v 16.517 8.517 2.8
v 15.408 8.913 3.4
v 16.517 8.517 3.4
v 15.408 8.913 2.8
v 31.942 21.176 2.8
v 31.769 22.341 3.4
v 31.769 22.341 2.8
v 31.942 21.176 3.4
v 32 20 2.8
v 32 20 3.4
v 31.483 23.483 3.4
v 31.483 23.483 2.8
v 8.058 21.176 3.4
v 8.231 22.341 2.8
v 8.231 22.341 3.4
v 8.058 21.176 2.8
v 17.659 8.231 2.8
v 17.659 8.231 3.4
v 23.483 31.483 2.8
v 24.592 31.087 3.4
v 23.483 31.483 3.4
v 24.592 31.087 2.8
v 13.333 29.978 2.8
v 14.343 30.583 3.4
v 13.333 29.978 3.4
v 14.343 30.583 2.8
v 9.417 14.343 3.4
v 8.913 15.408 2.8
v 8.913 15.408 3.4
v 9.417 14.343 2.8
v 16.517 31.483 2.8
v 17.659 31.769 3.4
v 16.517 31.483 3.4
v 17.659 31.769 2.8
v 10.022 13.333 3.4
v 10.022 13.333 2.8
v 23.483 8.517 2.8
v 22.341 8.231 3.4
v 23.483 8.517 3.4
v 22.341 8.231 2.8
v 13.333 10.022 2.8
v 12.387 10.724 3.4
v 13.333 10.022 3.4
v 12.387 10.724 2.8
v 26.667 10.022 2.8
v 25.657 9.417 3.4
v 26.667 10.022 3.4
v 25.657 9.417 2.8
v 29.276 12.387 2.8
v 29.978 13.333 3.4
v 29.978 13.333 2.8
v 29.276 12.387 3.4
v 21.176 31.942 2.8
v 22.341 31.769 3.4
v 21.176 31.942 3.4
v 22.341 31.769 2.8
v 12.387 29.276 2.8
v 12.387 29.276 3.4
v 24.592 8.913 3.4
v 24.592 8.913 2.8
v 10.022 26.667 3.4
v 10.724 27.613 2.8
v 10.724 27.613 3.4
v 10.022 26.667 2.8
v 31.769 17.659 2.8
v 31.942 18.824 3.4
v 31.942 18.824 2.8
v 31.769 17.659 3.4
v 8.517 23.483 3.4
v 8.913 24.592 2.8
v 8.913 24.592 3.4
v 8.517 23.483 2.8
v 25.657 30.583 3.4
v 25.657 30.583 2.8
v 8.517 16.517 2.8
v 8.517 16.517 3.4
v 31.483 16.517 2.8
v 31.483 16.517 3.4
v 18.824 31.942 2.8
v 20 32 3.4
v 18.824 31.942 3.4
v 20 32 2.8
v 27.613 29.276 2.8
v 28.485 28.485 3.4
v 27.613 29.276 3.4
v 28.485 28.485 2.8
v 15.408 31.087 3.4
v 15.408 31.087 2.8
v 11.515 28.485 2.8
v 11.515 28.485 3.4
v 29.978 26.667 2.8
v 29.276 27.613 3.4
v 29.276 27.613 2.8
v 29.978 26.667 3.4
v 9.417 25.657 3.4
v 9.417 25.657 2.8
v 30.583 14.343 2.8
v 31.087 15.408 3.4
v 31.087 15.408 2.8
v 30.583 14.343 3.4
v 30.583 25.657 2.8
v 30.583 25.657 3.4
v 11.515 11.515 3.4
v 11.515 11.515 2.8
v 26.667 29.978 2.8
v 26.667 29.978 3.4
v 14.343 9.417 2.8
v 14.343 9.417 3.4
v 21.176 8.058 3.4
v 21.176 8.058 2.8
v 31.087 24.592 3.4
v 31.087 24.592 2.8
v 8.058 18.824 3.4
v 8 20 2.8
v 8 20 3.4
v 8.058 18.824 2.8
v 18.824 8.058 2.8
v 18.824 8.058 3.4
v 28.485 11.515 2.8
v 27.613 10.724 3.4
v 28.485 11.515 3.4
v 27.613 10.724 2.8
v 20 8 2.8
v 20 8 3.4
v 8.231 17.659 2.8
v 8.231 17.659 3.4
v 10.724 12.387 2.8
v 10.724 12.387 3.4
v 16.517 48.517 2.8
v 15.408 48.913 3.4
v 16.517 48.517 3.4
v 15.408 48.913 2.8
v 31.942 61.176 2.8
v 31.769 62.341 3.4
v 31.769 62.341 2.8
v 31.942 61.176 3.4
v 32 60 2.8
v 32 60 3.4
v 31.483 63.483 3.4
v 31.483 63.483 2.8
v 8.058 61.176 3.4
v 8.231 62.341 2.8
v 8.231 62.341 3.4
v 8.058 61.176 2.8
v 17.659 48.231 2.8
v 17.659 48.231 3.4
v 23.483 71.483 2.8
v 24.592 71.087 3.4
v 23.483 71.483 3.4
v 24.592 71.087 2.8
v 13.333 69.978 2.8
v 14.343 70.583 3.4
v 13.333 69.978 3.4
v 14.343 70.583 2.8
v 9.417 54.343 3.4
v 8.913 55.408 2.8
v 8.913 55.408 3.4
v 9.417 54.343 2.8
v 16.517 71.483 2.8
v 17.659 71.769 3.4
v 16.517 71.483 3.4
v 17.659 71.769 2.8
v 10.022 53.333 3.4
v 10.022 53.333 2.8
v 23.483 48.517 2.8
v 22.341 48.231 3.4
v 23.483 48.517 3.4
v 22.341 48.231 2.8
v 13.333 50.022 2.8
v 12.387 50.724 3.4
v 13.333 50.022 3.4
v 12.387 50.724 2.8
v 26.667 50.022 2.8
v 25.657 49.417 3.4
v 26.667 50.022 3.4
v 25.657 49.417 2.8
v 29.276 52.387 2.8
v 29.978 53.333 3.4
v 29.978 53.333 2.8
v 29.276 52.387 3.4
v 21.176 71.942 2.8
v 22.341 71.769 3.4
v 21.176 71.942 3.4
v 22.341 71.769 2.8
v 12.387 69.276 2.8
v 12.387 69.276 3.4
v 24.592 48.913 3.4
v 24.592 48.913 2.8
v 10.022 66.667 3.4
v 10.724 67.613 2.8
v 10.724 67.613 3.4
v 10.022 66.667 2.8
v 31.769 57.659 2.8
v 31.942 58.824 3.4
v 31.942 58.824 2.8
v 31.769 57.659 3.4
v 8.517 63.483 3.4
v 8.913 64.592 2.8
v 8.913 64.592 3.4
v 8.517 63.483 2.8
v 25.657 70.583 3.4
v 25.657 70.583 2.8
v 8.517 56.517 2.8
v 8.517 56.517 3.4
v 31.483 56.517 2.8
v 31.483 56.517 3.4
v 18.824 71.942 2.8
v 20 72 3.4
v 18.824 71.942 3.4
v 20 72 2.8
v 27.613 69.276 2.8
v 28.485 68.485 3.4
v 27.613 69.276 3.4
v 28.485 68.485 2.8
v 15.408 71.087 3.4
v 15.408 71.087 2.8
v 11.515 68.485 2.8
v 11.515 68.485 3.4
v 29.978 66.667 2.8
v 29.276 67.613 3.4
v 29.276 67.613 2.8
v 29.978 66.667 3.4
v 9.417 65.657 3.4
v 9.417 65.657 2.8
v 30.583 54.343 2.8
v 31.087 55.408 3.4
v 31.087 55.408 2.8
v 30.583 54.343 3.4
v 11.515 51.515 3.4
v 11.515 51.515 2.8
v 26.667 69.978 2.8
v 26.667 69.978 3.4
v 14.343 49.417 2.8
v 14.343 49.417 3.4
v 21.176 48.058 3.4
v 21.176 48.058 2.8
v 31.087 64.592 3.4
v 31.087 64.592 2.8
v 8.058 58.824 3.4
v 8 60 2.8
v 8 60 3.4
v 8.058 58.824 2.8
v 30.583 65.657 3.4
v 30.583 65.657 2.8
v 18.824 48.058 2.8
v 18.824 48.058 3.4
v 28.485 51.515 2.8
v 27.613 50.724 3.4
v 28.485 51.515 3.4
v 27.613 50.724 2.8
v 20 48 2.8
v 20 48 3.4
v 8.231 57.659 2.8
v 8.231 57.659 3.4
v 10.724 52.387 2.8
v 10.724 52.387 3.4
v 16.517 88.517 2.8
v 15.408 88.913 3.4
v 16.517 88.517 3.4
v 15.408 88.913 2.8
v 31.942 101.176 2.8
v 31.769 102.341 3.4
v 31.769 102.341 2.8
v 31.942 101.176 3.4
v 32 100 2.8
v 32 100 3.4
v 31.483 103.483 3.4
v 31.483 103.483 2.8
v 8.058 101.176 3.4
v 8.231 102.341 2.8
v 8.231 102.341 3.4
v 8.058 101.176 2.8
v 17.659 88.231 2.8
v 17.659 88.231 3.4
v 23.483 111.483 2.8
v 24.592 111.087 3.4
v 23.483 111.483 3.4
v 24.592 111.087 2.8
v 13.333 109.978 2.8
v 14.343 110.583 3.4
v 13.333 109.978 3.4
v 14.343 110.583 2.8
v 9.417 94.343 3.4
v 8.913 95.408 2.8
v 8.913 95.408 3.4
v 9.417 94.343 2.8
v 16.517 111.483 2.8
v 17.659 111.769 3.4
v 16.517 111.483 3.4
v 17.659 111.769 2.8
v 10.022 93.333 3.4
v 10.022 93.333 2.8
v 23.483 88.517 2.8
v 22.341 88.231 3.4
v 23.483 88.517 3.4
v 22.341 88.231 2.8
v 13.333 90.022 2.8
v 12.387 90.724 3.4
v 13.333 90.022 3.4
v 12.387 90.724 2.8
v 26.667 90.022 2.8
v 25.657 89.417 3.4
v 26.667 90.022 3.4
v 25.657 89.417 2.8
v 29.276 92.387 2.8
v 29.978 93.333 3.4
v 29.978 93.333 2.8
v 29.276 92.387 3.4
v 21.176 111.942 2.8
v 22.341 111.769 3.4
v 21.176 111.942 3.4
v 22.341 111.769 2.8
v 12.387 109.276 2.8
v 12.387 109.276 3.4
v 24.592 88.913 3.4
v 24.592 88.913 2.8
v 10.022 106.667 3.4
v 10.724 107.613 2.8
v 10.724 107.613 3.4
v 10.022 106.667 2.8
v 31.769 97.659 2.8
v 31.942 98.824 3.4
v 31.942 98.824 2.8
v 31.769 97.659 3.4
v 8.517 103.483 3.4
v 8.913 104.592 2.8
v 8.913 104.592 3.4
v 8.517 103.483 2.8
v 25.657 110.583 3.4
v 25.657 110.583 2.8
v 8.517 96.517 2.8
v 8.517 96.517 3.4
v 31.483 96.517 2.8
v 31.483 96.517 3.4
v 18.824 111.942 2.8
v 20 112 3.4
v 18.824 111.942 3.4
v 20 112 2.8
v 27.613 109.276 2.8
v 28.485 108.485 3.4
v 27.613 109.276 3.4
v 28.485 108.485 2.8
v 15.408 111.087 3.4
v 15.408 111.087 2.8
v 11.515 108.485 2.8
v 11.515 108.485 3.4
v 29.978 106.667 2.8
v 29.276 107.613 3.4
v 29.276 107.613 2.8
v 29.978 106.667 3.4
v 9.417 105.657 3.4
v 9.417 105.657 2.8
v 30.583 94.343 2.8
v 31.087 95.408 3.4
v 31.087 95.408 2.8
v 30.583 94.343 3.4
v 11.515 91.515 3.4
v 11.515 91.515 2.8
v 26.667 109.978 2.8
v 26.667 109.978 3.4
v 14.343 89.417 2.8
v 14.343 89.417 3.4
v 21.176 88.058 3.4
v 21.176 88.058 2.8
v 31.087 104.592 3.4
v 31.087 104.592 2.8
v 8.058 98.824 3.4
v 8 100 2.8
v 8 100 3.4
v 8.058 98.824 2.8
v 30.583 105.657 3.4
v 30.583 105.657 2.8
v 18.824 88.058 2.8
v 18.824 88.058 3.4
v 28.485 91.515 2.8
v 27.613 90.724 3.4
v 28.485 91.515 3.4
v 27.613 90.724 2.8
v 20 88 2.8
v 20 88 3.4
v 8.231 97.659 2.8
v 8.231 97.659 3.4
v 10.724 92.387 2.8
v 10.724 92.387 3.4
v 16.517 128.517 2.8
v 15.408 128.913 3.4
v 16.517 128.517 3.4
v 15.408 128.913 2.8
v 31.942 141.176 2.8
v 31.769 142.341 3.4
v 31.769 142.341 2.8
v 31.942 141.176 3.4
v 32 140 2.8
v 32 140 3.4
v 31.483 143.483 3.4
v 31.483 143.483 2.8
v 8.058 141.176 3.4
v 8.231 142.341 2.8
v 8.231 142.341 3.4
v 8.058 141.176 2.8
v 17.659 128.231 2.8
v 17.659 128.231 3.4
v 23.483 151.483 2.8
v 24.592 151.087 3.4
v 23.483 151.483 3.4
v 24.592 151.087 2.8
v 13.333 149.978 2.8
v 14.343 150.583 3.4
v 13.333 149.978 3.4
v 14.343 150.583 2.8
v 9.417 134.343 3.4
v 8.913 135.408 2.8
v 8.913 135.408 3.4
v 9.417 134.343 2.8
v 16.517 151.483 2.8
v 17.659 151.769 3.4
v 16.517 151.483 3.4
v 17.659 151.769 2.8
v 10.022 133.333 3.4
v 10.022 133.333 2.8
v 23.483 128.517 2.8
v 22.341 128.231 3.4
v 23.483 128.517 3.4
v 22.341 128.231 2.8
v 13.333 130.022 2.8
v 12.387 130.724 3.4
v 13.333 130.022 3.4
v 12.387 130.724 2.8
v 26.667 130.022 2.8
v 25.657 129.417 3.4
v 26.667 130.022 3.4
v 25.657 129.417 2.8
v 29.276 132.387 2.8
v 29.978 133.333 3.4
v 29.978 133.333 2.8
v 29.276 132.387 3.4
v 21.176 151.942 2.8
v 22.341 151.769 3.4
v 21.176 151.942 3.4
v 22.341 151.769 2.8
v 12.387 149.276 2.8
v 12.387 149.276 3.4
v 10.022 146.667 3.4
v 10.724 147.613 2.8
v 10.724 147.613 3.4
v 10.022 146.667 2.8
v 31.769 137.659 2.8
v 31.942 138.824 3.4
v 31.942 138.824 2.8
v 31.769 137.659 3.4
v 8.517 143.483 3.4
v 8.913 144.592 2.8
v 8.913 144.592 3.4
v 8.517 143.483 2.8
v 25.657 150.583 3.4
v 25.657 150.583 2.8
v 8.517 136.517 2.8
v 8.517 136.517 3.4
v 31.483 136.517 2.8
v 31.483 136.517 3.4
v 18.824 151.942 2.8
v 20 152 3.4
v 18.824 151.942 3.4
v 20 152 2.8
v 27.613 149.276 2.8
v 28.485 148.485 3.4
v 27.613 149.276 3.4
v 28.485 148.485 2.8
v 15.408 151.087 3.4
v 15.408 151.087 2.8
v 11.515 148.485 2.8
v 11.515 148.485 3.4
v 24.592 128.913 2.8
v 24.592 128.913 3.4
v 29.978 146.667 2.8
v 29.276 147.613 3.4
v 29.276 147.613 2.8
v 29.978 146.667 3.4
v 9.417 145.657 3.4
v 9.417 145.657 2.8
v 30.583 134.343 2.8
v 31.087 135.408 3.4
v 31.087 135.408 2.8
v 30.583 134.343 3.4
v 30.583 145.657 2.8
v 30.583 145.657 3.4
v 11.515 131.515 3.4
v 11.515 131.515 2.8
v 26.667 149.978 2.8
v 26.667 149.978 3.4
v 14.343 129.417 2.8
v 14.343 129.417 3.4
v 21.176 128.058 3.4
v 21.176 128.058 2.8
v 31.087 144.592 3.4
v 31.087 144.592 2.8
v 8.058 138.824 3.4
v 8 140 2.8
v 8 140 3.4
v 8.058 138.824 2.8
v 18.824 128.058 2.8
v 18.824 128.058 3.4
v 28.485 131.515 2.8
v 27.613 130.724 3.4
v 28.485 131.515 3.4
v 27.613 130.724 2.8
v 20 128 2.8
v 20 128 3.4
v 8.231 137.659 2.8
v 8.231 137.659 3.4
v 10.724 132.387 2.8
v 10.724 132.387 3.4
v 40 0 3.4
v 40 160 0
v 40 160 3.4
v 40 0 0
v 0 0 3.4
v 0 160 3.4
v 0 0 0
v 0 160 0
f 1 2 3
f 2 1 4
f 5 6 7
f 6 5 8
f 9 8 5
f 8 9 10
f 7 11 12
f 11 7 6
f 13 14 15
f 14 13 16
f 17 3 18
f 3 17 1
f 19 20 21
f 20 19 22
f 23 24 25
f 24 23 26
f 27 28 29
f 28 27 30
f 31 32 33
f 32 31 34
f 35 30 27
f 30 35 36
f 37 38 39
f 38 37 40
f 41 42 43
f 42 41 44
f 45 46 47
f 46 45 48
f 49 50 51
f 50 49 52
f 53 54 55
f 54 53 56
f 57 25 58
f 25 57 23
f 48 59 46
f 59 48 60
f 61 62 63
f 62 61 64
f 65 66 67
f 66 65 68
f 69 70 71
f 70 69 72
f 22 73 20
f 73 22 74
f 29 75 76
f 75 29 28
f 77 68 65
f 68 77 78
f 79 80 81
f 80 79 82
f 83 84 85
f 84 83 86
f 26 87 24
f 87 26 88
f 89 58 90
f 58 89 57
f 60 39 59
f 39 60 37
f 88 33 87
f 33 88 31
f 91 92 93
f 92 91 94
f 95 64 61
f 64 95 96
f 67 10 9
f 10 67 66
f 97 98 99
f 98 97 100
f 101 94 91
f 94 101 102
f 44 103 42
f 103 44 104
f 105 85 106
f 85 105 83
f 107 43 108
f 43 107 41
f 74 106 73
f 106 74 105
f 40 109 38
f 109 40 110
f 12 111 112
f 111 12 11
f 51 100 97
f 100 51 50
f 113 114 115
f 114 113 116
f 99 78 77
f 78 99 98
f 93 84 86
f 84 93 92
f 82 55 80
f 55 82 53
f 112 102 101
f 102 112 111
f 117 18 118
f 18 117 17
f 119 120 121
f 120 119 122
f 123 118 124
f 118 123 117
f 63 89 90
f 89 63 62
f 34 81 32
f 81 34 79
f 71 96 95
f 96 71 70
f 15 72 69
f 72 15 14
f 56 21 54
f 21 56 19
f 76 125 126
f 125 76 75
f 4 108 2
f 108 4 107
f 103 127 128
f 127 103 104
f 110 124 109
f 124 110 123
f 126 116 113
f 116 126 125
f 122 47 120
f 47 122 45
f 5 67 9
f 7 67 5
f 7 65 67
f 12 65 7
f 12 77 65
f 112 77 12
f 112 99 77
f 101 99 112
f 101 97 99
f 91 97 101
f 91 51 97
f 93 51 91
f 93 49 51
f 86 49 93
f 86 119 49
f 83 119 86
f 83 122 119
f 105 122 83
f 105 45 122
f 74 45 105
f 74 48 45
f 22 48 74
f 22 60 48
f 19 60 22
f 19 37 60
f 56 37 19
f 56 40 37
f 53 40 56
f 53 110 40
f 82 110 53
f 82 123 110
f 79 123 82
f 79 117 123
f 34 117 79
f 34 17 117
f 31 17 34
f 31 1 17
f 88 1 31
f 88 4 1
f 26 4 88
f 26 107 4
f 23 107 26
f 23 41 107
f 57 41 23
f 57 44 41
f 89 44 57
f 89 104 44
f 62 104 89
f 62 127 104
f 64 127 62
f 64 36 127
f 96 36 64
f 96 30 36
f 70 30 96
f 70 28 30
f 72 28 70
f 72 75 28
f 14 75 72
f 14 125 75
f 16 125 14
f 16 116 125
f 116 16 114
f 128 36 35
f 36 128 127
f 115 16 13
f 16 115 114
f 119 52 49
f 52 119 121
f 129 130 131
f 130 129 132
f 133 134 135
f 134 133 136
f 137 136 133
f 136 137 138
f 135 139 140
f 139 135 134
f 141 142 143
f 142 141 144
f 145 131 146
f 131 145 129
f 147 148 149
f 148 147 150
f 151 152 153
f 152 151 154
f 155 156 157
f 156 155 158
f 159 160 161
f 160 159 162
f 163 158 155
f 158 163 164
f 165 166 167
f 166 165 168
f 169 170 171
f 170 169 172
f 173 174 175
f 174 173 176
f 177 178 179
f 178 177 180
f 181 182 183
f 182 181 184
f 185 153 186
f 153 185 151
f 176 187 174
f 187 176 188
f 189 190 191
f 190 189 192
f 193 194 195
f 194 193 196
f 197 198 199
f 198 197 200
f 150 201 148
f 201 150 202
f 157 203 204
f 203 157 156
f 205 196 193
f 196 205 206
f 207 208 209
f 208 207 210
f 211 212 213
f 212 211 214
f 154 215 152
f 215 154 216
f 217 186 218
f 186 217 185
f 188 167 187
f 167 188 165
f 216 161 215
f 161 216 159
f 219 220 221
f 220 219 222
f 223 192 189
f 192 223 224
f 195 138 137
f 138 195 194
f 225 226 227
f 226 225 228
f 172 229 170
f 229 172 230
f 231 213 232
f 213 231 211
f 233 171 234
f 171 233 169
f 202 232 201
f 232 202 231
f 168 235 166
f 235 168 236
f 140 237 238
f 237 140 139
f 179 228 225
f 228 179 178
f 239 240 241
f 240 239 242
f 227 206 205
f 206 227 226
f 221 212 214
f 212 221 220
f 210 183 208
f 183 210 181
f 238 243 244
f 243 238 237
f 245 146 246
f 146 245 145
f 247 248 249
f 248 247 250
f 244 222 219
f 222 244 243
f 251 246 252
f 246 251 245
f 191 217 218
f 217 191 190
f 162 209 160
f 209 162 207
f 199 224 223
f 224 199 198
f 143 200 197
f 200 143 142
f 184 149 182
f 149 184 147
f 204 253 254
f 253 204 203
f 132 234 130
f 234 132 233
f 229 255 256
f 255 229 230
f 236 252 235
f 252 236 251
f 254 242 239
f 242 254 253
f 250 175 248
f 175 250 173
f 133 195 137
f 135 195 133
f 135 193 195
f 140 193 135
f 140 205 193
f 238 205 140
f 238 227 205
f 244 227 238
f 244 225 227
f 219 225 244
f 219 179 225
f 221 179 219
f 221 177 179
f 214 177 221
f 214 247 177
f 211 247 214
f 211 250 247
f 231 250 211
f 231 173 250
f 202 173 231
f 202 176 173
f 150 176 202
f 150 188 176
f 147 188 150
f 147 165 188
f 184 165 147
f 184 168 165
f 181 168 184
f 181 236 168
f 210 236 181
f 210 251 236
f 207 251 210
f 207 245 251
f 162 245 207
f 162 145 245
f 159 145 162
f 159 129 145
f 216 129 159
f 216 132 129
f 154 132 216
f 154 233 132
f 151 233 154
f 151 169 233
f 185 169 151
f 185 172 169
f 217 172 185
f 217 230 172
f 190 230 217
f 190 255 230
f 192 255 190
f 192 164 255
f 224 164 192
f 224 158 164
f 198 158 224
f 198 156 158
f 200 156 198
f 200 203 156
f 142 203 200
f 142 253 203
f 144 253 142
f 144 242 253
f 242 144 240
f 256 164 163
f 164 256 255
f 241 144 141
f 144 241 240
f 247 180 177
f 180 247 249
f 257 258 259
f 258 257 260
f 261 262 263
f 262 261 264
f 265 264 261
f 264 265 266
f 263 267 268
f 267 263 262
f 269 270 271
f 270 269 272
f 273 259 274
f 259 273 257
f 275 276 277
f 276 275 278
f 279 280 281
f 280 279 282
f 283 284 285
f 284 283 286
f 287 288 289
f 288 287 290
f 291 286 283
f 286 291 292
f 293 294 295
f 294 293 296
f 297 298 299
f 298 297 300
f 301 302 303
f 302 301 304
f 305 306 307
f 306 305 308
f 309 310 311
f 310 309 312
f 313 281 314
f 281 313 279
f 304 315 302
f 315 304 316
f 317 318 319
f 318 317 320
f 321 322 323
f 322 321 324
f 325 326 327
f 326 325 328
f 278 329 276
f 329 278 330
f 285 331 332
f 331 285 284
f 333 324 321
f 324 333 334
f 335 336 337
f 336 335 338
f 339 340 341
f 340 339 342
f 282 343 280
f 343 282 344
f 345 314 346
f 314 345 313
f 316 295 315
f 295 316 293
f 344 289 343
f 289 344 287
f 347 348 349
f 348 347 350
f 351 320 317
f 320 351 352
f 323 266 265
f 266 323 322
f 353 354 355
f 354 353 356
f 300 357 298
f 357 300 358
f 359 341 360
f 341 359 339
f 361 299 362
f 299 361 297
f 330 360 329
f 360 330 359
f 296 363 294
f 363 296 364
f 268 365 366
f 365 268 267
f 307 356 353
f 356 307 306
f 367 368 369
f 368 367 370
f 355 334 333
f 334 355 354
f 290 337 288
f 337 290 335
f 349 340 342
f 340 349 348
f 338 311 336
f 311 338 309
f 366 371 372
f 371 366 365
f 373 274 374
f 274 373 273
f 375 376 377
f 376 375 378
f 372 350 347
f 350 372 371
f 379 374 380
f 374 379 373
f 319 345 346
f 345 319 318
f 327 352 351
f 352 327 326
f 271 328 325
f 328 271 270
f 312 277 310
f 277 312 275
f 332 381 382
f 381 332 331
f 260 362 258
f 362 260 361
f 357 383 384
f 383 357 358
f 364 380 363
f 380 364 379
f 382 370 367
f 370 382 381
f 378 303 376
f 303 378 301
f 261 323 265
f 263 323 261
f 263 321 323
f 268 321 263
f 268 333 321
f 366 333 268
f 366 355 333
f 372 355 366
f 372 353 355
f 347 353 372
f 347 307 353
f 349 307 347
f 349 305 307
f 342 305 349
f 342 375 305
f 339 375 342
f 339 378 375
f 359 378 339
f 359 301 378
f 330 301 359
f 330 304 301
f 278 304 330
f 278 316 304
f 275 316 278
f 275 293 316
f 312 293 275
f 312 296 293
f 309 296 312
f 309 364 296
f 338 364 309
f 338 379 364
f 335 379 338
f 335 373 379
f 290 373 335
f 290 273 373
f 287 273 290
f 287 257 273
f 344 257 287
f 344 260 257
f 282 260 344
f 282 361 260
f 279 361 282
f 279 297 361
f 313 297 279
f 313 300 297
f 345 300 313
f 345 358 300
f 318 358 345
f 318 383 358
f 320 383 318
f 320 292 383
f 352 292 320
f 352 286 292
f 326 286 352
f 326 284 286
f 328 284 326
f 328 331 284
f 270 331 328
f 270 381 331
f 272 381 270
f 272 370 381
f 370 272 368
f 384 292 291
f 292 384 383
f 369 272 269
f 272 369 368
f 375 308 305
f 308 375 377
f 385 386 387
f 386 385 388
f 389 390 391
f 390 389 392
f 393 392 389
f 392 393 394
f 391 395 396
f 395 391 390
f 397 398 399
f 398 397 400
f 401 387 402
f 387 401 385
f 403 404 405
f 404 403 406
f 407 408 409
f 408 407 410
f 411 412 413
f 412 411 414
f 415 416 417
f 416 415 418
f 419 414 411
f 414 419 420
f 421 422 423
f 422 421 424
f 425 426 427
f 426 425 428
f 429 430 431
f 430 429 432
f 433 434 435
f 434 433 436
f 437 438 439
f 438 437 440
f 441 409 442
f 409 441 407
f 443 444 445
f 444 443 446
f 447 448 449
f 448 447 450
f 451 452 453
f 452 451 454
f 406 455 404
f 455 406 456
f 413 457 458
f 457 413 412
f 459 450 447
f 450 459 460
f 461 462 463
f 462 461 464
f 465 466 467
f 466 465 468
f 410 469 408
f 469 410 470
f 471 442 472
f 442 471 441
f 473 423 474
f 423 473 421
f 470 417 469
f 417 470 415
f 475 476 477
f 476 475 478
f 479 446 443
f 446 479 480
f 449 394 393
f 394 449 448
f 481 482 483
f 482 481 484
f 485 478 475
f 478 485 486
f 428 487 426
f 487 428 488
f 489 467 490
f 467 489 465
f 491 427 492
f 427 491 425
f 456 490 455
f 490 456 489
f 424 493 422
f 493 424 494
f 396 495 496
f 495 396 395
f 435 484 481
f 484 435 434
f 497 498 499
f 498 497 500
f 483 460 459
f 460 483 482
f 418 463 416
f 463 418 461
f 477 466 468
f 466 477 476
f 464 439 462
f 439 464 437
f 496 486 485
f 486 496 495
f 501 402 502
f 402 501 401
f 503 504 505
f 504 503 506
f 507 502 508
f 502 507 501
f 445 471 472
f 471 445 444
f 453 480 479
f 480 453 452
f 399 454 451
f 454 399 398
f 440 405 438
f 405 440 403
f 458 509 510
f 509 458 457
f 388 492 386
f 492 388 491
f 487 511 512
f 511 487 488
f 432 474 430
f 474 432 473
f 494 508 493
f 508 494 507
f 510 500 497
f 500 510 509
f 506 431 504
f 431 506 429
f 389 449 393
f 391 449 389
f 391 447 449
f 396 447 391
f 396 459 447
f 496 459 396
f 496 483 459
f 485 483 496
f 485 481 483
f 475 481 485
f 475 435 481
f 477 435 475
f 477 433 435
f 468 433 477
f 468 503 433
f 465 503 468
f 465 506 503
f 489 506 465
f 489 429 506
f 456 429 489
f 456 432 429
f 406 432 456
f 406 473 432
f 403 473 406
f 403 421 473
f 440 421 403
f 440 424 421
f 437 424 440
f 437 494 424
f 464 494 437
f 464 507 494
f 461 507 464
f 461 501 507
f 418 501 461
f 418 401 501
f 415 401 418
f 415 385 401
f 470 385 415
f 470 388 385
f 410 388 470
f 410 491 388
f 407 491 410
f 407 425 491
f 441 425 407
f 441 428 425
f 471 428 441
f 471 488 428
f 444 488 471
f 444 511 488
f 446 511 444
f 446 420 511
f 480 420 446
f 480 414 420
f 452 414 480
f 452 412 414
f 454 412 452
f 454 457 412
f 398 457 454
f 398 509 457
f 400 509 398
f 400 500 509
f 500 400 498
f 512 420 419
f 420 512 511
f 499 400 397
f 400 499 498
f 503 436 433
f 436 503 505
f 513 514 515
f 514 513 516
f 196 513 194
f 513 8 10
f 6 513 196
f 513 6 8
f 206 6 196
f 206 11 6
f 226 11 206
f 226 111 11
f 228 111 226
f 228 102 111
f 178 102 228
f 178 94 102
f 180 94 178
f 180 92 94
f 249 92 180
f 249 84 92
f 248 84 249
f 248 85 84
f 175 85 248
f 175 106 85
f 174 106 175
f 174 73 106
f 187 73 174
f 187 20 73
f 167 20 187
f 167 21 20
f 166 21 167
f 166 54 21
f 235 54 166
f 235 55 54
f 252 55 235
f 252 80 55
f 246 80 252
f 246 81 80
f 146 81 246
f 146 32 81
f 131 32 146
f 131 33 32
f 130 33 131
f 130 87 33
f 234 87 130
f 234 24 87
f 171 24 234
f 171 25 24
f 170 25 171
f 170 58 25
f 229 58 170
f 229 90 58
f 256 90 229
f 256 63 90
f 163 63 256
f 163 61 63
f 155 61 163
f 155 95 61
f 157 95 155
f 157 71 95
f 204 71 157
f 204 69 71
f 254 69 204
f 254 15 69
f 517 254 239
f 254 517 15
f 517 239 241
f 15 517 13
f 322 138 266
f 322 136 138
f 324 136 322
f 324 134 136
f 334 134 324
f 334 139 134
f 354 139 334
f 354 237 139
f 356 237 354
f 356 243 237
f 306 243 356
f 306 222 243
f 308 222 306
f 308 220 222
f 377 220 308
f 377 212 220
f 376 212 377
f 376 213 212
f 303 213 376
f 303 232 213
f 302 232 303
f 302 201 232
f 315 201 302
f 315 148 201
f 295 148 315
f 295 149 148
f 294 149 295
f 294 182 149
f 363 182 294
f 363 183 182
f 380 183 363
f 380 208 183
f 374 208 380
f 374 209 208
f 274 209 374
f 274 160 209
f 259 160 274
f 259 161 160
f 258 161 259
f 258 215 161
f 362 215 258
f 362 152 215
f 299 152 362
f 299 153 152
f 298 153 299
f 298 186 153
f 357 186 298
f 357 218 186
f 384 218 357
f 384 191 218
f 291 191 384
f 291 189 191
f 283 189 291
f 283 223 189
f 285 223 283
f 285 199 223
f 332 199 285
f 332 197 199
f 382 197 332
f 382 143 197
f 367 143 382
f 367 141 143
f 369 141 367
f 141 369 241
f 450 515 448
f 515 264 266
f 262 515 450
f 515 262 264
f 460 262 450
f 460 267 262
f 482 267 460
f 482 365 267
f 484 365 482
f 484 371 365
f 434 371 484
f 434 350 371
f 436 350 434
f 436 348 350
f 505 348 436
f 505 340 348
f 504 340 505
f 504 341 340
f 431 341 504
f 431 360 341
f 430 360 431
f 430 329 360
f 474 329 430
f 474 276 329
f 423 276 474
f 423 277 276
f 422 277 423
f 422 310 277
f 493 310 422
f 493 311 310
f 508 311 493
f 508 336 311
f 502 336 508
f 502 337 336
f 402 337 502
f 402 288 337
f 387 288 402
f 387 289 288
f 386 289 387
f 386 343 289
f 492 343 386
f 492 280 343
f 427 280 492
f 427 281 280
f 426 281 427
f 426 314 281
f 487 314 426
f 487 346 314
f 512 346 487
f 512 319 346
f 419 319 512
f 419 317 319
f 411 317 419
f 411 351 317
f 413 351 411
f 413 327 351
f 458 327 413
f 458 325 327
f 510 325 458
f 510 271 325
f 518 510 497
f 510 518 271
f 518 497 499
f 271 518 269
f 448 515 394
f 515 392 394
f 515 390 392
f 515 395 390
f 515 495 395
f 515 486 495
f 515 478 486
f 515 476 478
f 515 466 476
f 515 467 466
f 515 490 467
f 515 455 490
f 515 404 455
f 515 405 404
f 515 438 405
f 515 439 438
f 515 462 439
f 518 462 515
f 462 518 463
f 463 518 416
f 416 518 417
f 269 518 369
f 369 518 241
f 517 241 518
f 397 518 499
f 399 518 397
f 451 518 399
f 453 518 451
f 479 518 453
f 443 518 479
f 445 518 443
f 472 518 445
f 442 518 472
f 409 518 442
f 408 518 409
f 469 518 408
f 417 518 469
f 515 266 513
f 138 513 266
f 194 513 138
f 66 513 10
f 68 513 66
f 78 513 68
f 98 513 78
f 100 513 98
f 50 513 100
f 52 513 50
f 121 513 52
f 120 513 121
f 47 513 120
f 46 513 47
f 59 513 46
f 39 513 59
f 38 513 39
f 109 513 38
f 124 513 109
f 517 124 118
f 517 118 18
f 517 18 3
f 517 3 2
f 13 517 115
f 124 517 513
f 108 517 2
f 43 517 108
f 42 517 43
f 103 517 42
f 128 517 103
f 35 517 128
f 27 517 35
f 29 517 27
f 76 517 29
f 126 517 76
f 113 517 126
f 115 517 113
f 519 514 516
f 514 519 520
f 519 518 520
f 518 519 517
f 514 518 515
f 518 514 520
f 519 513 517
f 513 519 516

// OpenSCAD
// file: common.scad
// OpenRook: shared dimensions for every printed part. Change a number here and re-run
// ../render.sh. Keep SQUARE in step with DEFAULT_SQUARE_MM in firmware/OpenRook/config.h.

$fn = 64;

// ---------------------------------------------------------------- board
SQUARE = 40;            // square pitch (mm)
TILE_SQUARES = 4;       // a playing tile is 4x4 squares; four tiles make the board
TILE_T = 3.4;           // tile thickness
INLAY_D = 0.6;          // dark-square recess depth for a second colour (0 = flat tile)
REED_L = 15;            // reed switch glass length (2x14 mm glass + margin)
REED_W = 2.6;           // groove width for glass body
GROOVE_D = 2.2;         // depth of wire/switch grooves on the tile underside
WIRE_W = 1.6;           // groove width for legs and wires
DIODE_L = 4.5;          // 1N4148 body (DO-35)
DIODE_W = 2.2;

// ---------------------------------------------------------------- pieces
PIECE_BASE = 20;        // base diameter: must stay <= SQUARE/2 so pieces pass between others
PIECE_MAG_D = 10.3;     // pocket for a 10x3 mm N52 disc magnet (+ clearance)
PIECE_MAG_H = 3.2;
FELT = 0;               // stick 0.5-1 mm felt under each piece; no geometry needed

// ---------------------------------------------------------------- hardware
EXTRUSION = 20;         // 2020 aluminium profile
M5 = 5.4;               // M5 clearance
M3 = 3.3;               // M3 clearance
M3_NUT = 6.4;           // across flats + clearance
ROD = 8;                // smooth rods
ROD_FIT = 8.15;
LM8UU_D = 15.2;
LM8UU_L = 24;
F623_D = 10.4;          // F623ZZ flanged bearing: 10 mm OD, 4 mm wide, 11.5 mm flange
F623_W = 4;
F623_FLANGE = 11.6;
NEMA = 42.3;
NEMA_HOLES = 31;
NEMA_BOSS = 22.5;
BELT_W = 6;             // GT2 6 mm
SERVO_W = 12.6;         // SG90 / MG90S body
SERVO_L = 23.2;
SERVO_TAB = 32.5;       // tab-to-tab length
CARRIAGE_MAG_D = 15.3;  // 15x4 mm N52 magnet on the lifting arm
CARRIAGE_MAG_H = 4.2;

// ---------------------------------------------------------------- frame
// Inside the frame: magnet travel 425 x 335 mm plus the gantry around it.
FRAME_X = 560;          // outer size of the 2020 rectangle (front/back extrusions)
FRAME_Y = 480;          // outer size (side extrusions are FRAME_Y - 40 long)
ROD_SPACING_X = 40;     // the two X rods, centre to centre

module rounded_box(size, r = 2) {
  hull() for (x = [r, size[0] - r], y = [r, size[1] - r]) translate([x, y, 0]) cylinder(r = r, h = size[2]);
}

module m3_nut_trap(h = 3) { cylinder(d = M3_NUT / cos(30), h = h, $fn = 6); }
// main file
// A strip of 4 capture slots that sits beside the board (print 4: two per side). Captured
// pieces are parked here by the magnet. Same thickness as the tiles, no sensors.
include <common.scad>
difference() {
  cube([SQUARE, 4 * SQUARE, TILE_T]);
  for (r = [0:3]) translate([SQUARE / 2, (r + 0.5) * SQUARE, TILE_T - 0.6]) cylinder(d = PIECE_BASE + 4, h = 1);
}
